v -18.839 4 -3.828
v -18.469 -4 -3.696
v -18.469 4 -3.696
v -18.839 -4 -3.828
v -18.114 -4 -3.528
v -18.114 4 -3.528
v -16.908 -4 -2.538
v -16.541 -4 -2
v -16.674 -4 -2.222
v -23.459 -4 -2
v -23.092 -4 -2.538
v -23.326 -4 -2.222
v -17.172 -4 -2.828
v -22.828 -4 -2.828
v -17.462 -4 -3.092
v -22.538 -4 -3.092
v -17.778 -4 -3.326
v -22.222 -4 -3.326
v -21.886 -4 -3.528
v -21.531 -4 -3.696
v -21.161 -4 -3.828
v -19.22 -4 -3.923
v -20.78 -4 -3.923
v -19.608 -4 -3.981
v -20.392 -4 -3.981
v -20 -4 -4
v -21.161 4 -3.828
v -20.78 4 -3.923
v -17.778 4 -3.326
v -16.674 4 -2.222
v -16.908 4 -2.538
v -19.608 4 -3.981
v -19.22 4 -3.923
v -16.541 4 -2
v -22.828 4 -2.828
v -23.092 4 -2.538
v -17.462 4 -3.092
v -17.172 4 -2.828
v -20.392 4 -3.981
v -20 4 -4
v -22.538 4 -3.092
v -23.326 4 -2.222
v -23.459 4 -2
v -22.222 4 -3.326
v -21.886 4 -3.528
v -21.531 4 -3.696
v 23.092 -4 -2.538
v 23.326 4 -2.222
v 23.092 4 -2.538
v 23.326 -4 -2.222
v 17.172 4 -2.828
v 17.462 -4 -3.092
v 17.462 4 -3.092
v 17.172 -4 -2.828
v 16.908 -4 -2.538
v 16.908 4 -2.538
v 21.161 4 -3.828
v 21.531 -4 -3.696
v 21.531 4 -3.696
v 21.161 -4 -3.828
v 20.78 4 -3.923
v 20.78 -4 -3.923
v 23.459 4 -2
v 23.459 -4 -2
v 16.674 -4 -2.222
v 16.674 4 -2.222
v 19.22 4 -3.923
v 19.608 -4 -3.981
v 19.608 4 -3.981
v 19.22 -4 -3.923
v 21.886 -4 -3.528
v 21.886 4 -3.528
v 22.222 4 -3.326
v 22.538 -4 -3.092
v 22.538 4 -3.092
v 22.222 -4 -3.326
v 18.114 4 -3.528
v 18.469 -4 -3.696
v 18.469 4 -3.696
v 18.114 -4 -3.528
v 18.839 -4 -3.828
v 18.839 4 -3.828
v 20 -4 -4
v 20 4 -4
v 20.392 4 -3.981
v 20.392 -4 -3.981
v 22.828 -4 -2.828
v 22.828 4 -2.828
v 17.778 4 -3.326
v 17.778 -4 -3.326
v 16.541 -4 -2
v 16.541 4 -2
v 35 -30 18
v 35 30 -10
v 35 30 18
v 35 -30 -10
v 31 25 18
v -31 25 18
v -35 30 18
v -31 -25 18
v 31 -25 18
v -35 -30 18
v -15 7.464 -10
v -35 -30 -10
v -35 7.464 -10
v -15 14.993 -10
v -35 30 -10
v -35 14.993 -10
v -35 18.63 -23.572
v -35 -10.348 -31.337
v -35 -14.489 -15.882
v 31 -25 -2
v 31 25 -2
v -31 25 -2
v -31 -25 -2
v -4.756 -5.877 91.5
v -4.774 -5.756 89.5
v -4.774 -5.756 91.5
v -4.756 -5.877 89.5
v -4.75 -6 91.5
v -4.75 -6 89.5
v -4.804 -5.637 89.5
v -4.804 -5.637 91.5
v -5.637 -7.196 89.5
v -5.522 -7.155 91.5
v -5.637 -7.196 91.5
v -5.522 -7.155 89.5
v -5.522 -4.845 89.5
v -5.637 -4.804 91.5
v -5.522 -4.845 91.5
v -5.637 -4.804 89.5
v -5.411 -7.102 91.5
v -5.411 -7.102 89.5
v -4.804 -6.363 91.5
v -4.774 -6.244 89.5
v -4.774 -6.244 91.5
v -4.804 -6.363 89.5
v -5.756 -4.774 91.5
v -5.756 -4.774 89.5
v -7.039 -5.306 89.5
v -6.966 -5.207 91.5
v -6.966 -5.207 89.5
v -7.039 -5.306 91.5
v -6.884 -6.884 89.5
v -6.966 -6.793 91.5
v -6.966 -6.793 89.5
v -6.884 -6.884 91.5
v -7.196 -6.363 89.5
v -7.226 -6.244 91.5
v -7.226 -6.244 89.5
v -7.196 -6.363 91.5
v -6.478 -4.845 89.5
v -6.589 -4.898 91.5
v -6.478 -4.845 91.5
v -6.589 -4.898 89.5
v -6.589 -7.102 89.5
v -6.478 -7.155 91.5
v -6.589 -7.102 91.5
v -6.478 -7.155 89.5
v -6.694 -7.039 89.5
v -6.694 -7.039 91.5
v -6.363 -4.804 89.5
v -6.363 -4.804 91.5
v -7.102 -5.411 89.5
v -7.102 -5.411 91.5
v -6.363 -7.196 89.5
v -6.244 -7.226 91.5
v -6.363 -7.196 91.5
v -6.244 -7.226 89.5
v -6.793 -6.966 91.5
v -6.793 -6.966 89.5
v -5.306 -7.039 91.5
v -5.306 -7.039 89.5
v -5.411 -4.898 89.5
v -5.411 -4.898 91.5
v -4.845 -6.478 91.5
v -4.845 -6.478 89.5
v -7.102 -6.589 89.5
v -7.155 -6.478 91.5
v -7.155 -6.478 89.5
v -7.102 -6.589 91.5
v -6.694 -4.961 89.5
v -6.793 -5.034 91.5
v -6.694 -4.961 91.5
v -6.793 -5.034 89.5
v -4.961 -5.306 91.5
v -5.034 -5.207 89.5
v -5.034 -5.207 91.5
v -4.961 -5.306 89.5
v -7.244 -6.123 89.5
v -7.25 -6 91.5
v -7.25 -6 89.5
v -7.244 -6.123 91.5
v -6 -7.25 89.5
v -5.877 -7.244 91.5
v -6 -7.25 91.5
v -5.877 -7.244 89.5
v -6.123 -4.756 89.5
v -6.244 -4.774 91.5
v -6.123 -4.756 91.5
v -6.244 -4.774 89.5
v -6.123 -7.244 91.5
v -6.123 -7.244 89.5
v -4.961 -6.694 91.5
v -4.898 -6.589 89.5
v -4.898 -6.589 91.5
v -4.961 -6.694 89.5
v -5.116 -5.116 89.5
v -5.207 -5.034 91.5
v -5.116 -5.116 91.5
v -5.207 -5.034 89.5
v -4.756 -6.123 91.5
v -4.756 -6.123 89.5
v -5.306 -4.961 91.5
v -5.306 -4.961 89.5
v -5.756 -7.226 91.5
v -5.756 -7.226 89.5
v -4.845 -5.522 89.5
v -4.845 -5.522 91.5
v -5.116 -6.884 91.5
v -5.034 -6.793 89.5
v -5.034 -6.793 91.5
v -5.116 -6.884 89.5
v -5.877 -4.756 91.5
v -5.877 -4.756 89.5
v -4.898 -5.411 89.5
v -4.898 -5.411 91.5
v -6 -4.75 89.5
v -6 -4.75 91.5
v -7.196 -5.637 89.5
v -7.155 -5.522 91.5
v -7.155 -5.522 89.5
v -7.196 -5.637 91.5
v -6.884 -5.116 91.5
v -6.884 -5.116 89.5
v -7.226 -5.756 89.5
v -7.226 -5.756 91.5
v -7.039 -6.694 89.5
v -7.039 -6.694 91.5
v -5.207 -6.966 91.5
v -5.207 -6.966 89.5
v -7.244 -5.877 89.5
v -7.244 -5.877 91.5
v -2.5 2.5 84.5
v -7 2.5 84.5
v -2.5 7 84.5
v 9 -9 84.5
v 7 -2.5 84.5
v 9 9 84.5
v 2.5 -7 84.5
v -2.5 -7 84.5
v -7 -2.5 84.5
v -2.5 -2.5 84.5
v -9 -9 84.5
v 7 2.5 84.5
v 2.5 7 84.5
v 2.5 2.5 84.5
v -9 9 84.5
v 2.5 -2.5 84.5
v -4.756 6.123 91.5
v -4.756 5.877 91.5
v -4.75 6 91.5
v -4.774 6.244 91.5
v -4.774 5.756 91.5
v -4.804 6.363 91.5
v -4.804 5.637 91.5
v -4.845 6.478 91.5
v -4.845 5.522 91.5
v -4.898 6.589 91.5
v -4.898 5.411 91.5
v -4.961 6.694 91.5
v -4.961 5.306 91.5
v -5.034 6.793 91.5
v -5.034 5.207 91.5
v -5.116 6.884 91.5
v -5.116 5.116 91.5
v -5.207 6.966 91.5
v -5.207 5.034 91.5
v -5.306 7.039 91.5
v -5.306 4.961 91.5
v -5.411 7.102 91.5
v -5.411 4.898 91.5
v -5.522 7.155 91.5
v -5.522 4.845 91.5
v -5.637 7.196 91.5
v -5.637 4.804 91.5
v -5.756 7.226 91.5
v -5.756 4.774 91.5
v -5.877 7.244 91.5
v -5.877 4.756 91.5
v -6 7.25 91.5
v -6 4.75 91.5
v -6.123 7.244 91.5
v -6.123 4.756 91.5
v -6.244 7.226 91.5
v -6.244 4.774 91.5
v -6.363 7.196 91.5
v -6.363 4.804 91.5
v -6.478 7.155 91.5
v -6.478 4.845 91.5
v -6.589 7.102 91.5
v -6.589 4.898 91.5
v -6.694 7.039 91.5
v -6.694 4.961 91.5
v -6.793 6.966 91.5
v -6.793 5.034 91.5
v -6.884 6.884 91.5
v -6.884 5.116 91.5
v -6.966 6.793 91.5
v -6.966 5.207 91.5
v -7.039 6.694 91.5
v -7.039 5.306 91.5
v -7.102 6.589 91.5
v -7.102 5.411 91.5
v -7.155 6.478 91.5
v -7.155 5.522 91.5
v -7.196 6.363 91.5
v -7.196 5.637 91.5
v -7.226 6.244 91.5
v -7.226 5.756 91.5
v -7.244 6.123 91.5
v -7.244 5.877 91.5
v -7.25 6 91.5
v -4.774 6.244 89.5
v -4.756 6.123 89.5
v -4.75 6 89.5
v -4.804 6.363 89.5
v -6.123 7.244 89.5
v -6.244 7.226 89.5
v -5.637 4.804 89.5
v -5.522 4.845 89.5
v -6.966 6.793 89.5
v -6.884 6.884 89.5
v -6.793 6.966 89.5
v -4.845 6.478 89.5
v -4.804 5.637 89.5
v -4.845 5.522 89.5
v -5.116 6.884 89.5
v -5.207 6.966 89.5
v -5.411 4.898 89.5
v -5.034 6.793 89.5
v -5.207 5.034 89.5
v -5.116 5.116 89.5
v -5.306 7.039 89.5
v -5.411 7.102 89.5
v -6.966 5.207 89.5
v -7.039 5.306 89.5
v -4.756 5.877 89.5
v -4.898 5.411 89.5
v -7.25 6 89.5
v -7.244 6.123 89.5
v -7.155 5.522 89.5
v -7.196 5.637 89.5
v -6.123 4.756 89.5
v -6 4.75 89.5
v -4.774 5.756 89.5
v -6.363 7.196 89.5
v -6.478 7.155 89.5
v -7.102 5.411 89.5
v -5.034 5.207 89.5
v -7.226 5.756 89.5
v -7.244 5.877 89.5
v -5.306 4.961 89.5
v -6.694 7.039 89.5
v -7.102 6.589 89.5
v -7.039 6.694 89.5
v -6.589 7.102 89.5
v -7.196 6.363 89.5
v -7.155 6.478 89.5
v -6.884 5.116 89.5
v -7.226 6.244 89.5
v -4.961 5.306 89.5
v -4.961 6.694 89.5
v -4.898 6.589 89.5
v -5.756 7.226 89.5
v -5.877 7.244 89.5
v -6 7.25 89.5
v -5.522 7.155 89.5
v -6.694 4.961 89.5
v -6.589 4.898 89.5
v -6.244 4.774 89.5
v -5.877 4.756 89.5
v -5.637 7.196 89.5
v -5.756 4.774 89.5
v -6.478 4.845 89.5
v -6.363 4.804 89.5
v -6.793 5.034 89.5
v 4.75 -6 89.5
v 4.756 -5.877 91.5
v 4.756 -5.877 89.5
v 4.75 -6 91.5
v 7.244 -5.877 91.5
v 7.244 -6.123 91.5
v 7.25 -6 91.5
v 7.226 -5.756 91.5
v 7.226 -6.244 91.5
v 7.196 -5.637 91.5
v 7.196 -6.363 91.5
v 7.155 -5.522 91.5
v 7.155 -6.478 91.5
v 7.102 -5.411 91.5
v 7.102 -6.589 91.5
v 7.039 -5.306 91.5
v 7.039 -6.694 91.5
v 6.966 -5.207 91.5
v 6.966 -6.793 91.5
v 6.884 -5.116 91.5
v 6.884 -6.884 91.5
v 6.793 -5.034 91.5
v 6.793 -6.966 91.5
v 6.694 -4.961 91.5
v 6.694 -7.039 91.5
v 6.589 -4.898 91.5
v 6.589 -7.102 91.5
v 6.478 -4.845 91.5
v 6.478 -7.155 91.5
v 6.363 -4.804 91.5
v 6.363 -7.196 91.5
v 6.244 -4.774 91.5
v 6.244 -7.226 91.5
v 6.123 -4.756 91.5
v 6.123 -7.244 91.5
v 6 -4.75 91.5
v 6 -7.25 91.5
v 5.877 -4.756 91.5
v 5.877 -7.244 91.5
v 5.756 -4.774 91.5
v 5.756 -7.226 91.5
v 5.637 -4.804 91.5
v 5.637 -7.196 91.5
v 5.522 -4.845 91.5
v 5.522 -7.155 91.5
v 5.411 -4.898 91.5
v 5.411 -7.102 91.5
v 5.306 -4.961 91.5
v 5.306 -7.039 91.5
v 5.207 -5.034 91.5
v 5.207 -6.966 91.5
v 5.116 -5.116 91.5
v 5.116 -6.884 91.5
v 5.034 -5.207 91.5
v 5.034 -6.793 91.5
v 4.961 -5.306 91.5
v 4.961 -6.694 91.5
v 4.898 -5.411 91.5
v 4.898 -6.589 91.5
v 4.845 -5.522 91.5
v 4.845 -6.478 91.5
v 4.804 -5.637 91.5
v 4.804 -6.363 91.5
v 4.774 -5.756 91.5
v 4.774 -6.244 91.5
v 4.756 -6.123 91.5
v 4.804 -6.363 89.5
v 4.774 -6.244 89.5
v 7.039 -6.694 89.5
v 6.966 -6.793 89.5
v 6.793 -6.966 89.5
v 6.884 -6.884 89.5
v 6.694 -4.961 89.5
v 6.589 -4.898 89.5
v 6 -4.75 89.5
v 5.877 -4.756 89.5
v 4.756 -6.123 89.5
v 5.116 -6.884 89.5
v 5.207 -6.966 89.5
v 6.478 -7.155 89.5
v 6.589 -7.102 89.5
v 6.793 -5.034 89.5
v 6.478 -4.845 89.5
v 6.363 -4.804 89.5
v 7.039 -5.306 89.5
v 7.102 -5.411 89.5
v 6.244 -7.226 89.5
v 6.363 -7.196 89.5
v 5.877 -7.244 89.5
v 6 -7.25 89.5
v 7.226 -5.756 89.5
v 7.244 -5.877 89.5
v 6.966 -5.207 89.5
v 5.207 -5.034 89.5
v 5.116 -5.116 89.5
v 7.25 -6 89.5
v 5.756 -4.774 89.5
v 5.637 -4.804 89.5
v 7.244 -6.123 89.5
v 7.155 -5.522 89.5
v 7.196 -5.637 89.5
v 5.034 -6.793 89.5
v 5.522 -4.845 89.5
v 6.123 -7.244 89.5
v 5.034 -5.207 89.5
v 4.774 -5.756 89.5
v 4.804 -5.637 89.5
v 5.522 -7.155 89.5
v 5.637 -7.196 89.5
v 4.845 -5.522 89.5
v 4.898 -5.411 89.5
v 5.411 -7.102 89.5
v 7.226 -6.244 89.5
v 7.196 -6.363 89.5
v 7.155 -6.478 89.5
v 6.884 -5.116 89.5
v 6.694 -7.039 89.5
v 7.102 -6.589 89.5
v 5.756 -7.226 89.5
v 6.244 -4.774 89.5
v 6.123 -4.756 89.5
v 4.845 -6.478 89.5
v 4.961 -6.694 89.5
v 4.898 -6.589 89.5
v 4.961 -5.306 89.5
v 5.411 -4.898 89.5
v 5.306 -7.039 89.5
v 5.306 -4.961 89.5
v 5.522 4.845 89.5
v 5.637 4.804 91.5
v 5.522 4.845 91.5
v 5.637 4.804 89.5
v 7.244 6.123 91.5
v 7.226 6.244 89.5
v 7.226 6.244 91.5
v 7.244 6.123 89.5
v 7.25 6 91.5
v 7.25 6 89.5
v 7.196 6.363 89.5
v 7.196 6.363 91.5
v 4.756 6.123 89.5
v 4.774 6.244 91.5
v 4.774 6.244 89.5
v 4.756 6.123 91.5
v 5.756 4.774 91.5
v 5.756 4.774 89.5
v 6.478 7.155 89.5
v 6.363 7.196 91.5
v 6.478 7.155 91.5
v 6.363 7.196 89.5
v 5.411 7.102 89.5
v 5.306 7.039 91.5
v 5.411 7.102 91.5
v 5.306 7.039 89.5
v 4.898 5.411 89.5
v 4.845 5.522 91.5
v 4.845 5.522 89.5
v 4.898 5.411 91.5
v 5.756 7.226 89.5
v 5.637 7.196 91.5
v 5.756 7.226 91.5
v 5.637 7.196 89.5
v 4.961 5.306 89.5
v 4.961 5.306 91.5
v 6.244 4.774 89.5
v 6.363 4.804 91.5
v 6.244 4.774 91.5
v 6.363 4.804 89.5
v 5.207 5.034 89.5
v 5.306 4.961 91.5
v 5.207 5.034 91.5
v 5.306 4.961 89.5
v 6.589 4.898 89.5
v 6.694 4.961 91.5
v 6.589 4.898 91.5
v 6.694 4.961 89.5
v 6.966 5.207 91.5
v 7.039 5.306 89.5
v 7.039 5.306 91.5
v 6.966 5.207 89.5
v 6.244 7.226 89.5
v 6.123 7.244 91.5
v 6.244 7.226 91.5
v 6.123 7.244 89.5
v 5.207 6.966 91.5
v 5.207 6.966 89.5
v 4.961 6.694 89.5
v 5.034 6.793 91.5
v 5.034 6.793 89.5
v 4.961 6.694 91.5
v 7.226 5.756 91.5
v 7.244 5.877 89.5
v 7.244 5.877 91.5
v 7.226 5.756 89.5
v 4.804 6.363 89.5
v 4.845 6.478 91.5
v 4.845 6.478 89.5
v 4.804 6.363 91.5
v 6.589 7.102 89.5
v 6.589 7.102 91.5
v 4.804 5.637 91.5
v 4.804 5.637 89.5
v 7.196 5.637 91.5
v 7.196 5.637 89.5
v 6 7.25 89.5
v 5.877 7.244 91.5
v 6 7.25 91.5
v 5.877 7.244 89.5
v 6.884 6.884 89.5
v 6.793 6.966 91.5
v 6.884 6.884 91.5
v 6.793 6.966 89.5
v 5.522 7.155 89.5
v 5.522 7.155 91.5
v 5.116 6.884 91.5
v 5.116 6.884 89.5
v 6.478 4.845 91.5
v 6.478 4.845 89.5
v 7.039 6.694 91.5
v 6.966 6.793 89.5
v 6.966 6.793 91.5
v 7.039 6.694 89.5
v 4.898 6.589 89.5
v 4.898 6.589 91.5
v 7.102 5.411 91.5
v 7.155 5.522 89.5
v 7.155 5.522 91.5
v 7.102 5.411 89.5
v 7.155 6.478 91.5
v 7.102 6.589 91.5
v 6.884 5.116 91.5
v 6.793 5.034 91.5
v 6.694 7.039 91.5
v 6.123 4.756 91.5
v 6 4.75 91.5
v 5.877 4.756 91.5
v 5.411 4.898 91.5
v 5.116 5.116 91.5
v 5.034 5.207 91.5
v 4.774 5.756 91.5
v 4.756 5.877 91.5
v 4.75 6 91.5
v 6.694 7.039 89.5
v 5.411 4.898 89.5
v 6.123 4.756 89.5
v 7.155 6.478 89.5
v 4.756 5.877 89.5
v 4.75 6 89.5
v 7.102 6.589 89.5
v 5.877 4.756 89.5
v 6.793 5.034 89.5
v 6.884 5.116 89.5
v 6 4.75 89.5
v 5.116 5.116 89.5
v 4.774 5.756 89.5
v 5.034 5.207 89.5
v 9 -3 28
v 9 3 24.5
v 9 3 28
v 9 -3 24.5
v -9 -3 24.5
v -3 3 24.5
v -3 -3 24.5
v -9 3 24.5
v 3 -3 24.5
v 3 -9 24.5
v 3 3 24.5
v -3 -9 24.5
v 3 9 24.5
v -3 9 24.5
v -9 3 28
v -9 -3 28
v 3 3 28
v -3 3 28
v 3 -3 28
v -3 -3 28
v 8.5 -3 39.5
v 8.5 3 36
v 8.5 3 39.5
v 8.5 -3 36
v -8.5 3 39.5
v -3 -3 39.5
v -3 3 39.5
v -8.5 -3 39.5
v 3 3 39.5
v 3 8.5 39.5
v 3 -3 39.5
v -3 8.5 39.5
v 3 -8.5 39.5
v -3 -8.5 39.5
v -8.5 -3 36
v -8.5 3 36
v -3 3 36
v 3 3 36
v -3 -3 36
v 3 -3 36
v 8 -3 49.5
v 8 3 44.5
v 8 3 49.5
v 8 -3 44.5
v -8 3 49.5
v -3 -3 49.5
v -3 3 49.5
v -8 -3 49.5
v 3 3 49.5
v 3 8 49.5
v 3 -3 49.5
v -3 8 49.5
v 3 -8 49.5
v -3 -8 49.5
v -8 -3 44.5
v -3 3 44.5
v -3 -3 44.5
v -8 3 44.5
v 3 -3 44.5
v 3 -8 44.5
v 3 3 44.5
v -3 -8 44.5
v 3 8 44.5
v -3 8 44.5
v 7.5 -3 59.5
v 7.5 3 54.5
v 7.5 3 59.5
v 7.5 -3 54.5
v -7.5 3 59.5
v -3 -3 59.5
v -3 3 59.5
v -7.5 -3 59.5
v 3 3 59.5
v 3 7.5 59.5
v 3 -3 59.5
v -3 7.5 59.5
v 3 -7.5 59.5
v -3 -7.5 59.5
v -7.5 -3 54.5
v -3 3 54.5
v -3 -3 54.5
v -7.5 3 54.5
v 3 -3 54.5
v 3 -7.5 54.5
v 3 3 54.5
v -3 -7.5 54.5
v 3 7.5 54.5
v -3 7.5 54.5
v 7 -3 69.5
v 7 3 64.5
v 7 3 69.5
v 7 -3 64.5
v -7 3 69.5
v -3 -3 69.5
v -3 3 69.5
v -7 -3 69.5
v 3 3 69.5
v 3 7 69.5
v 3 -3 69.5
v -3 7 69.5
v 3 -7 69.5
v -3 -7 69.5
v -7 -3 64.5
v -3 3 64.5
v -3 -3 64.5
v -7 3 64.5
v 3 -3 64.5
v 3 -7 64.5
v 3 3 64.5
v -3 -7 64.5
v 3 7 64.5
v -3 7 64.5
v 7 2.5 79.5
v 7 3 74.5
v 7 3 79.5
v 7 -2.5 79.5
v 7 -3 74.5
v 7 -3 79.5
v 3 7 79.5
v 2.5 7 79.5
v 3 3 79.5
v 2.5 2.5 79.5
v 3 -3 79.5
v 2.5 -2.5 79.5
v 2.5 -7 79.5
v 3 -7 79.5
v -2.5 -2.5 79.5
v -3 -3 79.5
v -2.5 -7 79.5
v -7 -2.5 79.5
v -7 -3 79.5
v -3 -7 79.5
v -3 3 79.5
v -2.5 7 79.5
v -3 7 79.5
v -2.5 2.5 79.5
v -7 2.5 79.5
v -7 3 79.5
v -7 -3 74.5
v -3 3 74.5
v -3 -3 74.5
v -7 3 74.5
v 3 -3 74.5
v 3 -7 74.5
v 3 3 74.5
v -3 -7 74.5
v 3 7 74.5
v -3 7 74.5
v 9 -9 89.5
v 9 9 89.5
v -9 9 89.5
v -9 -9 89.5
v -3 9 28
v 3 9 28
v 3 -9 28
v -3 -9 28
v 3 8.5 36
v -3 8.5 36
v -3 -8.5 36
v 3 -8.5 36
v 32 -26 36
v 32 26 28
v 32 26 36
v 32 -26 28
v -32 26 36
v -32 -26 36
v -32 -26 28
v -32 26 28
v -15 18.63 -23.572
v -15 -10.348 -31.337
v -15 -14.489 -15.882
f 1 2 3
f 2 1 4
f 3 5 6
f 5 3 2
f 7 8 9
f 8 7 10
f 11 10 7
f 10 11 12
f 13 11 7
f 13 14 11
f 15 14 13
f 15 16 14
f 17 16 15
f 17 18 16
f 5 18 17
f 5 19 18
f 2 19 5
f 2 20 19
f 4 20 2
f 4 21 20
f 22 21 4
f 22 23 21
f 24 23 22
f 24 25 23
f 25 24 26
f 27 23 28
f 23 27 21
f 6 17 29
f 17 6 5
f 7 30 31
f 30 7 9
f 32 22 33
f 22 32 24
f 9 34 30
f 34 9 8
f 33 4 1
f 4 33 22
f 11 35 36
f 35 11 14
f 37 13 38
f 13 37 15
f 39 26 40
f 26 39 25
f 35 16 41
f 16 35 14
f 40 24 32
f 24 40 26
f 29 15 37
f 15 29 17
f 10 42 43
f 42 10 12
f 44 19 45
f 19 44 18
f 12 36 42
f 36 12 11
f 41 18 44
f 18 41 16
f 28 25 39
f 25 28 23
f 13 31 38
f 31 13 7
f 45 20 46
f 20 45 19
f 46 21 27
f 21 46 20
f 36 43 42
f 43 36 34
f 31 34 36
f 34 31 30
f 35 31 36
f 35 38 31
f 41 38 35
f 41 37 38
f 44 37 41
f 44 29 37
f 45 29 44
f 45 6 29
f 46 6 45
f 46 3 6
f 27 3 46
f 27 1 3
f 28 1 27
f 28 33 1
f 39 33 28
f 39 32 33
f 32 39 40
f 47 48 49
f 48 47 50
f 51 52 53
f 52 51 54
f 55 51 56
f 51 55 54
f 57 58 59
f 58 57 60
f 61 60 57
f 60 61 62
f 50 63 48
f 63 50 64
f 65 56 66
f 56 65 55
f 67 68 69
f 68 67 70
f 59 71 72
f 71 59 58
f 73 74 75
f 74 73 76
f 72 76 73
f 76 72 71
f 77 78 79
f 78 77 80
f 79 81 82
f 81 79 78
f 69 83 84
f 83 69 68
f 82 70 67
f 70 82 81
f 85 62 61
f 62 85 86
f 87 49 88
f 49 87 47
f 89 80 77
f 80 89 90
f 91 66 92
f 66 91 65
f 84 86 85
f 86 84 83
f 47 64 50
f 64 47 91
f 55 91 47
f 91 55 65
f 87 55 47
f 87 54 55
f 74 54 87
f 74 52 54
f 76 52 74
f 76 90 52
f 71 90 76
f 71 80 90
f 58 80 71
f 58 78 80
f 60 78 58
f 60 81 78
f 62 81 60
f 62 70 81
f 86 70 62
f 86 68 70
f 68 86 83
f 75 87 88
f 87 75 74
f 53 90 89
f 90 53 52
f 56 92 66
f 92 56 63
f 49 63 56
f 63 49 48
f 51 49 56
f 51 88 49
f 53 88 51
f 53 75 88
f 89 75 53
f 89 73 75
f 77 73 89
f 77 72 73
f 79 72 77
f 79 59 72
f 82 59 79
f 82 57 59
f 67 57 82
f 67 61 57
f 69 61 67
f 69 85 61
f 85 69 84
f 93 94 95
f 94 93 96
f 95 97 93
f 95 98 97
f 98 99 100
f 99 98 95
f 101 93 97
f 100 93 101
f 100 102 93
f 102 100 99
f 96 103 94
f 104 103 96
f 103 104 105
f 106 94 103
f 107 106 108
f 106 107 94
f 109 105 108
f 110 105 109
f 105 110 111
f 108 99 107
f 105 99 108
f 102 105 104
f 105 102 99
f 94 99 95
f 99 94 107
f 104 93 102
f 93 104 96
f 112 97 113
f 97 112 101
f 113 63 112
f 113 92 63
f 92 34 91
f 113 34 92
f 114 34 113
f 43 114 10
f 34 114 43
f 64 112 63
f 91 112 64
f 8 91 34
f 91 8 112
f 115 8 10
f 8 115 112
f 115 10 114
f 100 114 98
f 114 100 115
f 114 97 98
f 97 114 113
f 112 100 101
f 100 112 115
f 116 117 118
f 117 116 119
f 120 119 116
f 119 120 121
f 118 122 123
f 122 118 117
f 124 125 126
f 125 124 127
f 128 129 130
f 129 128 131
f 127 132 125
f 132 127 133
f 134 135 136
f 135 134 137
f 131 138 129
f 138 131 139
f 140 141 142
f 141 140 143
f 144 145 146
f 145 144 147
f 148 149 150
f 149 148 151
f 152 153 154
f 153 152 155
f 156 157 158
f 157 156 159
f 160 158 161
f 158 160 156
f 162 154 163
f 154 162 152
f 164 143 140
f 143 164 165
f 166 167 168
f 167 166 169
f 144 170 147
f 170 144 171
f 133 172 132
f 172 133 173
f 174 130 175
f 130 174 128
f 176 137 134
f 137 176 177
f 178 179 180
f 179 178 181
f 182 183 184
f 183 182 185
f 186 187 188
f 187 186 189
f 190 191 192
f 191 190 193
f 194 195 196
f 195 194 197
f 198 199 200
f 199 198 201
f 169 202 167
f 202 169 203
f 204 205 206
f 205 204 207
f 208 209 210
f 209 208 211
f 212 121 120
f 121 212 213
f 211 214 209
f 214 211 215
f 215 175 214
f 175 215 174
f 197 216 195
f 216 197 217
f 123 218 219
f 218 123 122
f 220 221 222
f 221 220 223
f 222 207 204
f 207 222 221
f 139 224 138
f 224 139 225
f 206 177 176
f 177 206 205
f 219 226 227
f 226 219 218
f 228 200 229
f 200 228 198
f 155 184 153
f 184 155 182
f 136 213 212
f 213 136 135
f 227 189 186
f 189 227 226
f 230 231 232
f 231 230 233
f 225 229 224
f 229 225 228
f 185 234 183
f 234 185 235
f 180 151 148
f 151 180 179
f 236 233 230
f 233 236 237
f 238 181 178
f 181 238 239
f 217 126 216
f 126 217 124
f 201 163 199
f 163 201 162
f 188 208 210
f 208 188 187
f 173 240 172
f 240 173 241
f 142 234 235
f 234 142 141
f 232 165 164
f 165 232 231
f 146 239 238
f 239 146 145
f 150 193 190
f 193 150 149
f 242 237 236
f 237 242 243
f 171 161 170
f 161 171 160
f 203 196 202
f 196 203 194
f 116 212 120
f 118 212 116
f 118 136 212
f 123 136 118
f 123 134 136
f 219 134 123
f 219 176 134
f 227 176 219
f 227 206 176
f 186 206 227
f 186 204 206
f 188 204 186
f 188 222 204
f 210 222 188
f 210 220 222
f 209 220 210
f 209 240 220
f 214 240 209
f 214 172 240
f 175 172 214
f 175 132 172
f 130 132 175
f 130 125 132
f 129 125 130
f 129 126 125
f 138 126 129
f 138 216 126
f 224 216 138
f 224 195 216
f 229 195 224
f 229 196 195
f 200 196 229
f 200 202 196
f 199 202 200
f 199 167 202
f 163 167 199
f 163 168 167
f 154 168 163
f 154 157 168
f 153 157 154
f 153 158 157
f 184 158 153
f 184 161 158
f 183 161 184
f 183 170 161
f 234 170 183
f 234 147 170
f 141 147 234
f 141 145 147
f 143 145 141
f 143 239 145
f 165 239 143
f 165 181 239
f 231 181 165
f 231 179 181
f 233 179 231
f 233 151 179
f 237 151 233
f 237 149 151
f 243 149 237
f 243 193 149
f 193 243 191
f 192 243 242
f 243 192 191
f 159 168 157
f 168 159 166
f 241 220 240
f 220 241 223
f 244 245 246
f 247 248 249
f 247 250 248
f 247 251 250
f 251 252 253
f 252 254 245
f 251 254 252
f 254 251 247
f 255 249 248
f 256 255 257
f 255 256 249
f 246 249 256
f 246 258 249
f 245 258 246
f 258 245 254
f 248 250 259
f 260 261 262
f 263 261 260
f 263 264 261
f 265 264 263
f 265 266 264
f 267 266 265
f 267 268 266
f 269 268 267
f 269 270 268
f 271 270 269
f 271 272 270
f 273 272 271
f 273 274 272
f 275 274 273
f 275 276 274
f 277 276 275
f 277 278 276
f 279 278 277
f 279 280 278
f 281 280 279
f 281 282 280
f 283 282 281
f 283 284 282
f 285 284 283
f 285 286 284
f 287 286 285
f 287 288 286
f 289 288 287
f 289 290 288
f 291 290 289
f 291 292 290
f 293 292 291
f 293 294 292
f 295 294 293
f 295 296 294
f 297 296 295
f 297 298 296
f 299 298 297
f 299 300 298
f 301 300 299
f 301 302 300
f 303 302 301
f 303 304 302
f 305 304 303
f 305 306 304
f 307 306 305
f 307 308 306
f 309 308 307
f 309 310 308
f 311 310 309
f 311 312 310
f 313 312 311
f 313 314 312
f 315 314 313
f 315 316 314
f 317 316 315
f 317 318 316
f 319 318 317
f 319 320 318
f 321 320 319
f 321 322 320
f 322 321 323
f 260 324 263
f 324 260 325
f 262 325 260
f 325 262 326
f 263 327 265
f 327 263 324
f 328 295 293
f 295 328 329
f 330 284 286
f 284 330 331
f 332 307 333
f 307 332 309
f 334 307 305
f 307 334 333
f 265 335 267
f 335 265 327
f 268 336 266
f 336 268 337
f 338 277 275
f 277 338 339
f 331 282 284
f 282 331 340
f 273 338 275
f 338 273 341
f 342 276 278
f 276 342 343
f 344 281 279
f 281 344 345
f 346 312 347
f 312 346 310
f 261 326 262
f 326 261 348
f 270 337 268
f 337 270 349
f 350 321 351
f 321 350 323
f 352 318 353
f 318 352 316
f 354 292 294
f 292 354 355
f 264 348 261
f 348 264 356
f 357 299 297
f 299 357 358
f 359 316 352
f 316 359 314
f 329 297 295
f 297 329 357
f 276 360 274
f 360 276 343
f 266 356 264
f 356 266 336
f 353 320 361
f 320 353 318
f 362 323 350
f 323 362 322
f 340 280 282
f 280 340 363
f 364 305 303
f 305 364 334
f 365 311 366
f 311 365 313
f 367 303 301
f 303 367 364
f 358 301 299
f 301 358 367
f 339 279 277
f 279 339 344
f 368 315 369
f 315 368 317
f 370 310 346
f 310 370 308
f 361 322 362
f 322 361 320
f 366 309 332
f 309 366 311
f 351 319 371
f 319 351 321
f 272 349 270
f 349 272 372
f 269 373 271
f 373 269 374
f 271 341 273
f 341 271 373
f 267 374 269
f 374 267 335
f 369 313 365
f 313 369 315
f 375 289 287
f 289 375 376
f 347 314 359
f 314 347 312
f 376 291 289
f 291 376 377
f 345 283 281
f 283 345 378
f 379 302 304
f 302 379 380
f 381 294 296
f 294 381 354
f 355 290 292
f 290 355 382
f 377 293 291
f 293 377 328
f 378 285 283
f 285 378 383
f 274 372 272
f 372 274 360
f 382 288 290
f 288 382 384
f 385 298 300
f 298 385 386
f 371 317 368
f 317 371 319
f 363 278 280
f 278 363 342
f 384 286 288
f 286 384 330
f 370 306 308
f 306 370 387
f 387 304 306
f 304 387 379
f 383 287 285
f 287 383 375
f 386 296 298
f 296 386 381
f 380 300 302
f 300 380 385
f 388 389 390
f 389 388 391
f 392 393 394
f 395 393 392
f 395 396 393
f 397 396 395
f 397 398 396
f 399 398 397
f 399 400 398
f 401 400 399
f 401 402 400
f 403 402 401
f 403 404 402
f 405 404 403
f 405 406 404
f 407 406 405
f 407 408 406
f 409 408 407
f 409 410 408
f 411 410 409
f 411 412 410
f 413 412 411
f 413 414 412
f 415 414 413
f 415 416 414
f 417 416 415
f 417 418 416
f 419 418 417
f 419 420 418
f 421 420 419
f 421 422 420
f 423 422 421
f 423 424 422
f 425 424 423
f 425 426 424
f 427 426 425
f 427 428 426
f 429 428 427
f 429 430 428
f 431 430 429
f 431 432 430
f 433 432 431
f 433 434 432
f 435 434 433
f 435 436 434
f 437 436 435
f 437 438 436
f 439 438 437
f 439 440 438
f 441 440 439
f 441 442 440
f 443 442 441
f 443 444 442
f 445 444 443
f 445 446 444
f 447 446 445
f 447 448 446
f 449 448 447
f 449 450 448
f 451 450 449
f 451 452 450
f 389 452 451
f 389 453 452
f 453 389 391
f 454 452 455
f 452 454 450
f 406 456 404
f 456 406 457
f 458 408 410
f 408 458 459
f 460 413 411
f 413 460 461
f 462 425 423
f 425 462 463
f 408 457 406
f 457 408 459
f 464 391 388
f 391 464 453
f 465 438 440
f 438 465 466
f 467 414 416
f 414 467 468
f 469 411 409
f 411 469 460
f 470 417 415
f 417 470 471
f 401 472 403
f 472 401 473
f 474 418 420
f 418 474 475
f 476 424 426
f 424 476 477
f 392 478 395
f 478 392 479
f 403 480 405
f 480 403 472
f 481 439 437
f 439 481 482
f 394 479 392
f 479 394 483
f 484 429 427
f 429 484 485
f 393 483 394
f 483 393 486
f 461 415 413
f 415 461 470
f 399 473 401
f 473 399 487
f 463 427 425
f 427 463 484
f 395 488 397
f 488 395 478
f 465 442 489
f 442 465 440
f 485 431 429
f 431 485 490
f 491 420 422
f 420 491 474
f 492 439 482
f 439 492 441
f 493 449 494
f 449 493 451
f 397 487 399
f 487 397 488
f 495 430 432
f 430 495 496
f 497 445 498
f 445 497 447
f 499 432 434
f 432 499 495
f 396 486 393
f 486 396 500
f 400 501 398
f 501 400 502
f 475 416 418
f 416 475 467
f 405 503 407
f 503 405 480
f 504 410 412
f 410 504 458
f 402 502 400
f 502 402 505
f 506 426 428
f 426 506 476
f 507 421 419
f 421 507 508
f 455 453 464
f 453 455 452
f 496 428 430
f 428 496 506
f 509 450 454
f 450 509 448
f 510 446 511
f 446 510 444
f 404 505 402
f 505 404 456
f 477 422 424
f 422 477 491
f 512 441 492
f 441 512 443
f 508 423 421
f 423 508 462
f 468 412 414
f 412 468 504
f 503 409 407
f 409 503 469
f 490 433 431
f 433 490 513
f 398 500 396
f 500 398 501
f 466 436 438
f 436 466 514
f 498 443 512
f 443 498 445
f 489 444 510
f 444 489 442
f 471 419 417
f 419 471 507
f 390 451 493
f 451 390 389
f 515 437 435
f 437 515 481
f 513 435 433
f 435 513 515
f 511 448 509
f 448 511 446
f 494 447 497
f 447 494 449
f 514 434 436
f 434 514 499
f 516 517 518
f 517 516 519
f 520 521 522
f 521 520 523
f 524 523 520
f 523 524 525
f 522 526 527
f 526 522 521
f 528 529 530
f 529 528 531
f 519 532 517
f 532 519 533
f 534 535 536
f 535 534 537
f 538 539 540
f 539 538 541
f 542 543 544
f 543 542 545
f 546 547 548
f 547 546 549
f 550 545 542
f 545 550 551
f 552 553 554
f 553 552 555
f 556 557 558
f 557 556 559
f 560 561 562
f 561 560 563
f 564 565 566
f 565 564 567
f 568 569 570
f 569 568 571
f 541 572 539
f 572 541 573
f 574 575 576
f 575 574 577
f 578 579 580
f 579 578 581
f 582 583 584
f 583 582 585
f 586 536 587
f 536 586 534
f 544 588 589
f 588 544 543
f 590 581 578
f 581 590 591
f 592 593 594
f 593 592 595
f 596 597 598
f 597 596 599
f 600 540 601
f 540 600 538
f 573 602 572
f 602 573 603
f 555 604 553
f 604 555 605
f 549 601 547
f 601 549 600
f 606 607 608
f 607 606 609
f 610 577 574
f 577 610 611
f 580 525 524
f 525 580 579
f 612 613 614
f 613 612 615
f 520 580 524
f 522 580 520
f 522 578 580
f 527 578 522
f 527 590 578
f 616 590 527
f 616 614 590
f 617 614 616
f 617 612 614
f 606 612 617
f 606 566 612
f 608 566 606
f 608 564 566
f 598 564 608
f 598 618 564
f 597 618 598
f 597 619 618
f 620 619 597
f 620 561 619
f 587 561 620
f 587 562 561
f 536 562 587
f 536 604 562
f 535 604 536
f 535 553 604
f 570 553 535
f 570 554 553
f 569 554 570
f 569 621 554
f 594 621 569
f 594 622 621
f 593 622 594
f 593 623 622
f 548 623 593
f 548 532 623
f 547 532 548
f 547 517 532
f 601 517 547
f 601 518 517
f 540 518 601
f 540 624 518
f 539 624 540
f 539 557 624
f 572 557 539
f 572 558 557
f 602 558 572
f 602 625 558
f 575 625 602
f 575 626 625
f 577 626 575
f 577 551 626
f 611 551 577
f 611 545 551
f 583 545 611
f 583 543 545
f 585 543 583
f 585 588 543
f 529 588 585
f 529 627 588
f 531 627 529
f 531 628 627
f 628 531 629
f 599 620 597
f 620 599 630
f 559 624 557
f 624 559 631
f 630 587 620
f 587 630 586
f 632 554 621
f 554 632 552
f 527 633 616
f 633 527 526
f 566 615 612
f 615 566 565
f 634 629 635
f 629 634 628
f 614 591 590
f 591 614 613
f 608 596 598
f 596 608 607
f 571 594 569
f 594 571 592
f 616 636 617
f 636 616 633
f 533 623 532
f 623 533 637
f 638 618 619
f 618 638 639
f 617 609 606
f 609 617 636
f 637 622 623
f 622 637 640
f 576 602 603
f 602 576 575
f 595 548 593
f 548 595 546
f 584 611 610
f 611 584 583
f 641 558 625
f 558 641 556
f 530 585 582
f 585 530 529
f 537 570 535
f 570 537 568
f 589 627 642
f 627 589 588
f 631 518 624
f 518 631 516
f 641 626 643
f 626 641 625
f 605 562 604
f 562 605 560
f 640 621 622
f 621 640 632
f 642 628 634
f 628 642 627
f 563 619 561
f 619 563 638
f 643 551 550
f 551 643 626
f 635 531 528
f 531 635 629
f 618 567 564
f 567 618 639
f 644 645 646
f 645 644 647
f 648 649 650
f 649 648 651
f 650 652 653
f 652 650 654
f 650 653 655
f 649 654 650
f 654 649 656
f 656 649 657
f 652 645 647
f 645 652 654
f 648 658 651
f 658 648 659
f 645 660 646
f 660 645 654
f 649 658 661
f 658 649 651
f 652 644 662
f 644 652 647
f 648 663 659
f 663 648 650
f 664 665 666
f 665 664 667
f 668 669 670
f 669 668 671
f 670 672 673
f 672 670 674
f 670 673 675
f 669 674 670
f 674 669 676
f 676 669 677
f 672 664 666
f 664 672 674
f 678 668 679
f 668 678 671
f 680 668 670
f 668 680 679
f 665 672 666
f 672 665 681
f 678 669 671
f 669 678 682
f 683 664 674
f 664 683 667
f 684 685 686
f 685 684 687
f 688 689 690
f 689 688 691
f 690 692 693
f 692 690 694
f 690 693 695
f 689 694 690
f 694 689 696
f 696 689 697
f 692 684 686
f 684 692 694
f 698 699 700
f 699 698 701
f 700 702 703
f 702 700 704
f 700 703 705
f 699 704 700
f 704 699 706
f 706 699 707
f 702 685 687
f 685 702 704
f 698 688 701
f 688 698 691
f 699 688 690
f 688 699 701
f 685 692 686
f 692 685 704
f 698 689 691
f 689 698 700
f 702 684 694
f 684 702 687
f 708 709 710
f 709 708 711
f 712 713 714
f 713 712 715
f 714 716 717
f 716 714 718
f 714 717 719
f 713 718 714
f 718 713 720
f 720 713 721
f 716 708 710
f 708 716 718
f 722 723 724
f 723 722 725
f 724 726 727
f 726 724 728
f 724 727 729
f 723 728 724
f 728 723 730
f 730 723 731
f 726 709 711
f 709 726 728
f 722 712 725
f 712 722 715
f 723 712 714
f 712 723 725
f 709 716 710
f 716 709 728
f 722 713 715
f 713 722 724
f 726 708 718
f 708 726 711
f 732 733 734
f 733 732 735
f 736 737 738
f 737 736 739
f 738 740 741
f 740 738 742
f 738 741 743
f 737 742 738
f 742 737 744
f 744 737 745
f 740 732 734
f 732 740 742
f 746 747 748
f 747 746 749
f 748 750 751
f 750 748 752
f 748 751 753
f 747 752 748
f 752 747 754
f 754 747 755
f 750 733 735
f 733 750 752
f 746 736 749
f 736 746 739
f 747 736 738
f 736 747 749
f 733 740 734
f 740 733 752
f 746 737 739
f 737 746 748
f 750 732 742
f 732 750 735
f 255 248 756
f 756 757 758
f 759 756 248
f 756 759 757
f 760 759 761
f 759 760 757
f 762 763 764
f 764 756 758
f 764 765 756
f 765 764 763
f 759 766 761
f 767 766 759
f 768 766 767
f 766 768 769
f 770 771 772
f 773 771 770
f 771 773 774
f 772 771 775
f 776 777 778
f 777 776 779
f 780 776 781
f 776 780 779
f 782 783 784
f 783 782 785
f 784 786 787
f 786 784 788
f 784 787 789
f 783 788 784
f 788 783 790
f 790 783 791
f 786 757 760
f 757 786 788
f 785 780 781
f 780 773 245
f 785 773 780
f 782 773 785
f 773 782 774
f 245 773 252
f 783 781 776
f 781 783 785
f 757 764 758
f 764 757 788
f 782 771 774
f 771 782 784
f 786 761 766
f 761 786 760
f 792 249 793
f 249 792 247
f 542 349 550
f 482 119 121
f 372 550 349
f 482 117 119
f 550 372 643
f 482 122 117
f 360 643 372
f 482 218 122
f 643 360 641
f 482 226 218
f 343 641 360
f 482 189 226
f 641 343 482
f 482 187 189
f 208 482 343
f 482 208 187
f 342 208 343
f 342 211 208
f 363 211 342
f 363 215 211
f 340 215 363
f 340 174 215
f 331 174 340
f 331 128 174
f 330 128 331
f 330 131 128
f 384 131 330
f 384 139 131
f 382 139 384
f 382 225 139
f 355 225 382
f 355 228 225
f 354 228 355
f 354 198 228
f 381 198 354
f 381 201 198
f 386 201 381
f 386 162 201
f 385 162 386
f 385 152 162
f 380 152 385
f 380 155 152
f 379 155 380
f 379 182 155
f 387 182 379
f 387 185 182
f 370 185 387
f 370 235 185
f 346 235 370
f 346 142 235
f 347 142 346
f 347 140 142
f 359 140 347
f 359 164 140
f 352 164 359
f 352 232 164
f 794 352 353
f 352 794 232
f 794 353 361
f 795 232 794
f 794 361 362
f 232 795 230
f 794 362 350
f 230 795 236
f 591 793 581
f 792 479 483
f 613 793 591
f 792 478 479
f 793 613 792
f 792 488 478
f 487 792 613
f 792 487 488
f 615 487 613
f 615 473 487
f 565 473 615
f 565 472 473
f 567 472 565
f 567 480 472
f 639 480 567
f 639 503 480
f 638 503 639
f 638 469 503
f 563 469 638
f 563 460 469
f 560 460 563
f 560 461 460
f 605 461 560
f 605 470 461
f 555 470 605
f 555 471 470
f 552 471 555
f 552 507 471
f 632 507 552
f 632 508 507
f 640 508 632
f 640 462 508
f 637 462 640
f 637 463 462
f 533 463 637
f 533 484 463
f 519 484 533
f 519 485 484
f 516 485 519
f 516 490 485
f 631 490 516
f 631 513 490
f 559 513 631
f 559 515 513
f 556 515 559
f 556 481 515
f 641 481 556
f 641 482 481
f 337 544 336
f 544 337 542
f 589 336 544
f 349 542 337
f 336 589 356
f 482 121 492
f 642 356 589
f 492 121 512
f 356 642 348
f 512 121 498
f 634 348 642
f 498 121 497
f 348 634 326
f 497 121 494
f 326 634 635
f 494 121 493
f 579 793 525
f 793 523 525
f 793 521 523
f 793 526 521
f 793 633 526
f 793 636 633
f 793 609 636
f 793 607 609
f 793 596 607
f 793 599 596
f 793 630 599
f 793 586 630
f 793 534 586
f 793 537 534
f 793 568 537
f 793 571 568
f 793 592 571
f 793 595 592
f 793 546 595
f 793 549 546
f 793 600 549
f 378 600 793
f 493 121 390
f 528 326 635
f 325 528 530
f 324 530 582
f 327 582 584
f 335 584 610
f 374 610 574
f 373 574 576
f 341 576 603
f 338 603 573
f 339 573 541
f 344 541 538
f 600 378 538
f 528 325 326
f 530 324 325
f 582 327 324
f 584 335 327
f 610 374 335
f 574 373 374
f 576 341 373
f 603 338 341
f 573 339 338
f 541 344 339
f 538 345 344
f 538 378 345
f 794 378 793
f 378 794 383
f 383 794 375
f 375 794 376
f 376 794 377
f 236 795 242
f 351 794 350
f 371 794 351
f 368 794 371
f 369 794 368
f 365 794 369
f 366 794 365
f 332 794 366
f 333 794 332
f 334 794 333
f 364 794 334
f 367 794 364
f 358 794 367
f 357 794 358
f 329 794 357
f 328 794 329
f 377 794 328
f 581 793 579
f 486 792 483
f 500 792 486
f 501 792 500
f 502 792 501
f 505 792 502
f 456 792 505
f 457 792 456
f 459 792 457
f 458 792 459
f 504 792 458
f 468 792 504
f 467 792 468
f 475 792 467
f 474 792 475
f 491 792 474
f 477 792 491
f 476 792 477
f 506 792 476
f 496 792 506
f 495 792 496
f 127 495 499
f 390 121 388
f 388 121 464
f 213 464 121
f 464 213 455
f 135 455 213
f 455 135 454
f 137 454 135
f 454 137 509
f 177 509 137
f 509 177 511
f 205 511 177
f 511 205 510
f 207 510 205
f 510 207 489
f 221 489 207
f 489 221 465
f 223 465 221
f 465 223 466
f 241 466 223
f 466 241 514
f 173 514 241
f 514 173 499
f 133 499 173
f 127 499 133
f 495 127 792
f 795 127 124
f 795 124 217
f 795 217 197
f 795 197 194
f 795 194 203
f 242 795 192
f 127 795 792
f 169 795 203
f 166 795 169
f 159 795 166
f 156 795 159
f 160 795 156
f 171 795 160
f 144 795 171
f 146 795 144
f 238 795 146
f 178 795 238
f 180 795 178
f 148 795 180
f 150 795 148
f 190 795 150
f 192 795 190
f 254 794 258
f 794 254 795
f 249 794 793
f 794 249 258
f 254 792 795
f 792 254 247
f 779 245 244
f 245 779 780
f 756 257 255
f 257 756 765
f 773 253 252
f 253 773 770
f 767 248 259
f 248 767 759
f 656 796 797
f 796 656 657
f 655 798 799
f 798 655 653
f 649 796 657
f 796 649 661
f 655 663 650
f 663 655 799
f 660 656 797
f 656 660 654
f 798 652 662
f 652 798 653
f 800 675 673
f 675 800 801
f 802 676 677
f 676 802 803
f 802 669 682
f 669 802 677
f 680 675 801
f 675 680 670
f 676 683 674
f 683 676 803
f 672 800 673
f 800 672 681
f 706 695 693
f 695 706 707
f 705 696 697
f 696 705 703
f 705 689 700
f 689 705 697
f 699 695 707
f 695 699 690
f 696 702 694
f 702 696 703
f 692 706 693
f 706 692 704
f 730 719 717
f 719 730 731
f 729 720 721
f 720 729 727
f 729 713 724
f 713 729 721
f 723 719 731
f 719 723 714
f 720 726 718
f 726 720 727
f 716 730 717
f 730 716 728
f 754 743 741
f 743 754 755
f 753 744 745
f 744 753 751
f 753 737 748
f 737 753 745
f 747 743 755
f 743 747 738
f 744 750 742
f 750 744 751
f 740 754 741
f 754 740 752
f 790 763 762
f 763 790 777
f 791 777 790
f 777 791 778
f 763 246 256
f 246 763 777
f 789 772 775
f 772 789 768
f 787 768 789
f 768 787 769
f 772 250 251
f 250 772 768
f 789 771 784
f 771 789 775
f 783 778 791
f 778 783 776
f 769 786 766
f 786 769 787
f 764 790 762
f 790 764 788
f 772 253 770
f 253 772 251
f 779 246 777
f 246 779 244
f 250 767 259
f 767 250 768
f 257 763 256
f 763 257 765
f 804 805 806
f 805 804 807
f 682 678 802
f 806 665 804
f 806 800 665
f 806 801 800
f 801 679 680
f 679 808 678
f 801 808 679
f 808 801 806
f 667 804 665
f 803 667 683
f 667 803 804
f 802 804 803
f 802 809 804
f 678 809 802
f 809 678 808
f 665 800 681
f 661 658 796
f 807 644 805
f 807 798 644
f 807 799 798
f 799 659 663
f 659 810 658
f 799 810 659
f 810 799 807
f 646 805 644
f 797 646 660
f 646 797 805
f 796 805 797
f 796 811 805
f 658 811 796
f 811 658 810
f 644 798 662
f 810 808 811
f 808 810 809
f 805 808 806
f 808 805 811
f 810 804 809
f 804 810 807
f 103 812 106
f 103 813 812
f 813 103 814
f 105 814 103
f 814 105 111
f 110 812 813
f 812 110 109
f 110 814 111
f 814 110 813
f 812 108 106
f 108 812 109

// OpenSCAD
// 08_FoldedAssembly.scad - 折叠状态总装
// 手抛时的携带尺寸: 90×60×35mm
$fn = 64;
COLOR_FRAME  = [0.12, 0.12, 0.14];
COLOR_ORANGE = [0.90, 0.40, 0.02];
COLOR_SOFT   = [0.05, 0.05, 0.05];

// 中央舱（压缩版，与展开版相同但无GPS柱）
color(COLOR_FRAME)
difference() {
    translate([0, 0, 4])
        cube([70, 60, 28], center=true);
    translate([0, 0, 9])
        cube([62, 50, 22], center=true);
    translate([0, 0, 22])
        cube([36, 36, 6], center=true);
    for (x = [-10, 10])
        for (y = [-10, 10])
            translate([x, y, 26])
                cylinder(r=1.0, h=6, center=true);
    // 折叠臂槽（垂直向上）
    for (angle = [0, 90, 180, 270])
        rotate([0, 0, angle])
            translate([0, 0, 22])
                cube([18, 14, 20], center=true);
    for (x = [-20, 20])
        translate([x, 0, 0])
            rotate([90, 0, 0])
                cylinder(r=4, h=8, center=true);
}

// 折叠臂 x4（垂直向上折叠）
for (angle = [0, 90, 180, 270])
    rotate([0, 0, angle])
    translate([0, 0, 22])
    color(COLOR_FRAME) {
        // 臂身（折叠位置=垂直）
        translate([0, 0, 5])
            cube([18, 6, 5], center=true);
        translate([0, 0, 15])
            cube([17, 6, 5], center=true);
        translate([0, 0, 25])
            cube([16, 6, 5], center=true);
        translate([0, 0, 35])
            cube([15, 6, 5], center=true);
        translate([0, 0, 45])
            cube([14, 6, 5], center=true);
        translate([0, 0, 55])
            cube([14, 6, 5], center=true);
        translate([0, 0, 65])
            cube([18, 18, 5], center=true);
        
        // 折叠锁扣
        color(COLOR_ORANGE)
        translate([0, 0, 60])
            cube([14, 5, 5], center=true);
        
        // 电机安装孔
        for (x = [-6, 6])
            for (y = [-6, 6])
                translate([x, y, 66])
                    cylinder(r=1.25, h=7, center=true);
    }

// 电池仓盖（顶部）
color(COLOR_SOFT)
translate([0, 0, 32])
    cube([64, 52, 8], center=true);

// 手柄（可选，方便手抛握持）
color(COLOR_FRAME)
translate([-25, 0, -12])
    rotate([15, 0, 0])
    translate([0, 0, -8])
        cube([20, 30, 16], center=true);
